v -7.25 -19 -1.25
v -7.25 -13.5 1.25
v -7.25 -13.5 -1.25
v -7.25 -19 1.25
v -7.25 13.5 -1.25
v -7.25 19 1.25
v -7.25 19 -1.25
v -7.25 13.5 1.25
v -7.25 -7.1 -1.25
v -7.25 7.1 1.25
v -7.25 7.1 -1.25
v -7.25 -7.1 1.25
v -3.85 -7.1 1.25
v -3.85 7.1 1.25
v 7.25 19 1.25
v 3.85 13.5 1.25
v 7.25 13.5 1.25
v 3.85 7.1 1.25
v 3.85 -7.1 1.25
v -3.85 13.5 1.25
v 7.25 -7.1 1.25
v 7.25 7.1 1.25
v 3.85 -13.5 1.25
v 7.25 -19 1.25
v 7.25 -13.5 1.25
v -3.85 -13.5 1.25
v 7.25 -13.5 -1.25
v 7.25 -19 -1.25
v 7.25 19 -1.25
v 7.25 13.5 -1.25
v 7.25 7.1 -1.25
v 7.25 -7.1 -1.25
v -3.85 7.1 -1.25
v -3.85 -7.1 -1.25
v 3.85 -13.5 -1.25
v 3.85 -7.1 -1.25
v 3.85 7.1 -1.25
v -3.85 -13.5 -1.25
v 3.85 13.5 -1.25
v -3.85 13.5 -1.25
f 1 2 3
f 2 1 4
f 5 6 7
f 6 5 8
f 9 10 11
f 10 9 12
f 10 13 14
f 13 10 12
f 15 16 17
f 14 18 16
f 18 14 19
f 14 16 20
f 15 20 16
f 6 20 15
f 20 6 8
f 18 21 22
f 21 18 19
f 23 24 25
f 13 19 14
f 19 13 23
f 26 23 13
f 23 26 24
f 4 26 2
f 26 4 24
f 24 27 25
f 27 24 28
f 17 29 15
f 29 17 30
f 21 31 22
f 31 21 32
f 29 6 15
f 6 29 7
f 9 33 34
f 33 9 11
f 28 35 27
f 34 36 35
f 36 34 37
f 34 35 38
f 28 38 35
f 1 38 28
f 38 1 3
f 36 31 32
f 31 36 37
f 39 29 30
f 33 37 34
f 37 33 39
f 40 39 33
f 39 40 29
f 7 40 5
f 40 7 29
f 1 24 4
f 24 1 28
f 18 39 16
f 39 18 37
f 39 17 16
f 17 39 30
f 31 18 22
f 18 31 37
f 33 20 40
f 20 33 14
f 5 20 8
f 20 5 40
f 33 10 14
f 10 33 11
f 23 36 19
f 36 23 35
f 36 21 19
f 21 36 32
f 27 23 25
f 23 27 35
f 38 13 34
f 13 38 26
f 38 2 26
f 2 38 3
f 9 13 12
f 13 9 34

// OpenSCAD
difference() {
    cube([14.5,38,2.5],center=true);
    translate([14.5/2-3.4/2,12-3.4/2,0])
        cube([3.4,6.4,2.5],center=true);
    translate([-14.5/2+3.4/2,12-3.4/2,0])
        cube([3.4,6.4,2.5],center=true);
    translate([14.5/2-3.4/2,-12+3.4/2,0])
        cube([3.4,6.4,2.5],center=true);
    translate([-14.5/2+3.4/2,-12+3.4/2,0])
        cube([3.4,6.4,2.5],center=true);
}
